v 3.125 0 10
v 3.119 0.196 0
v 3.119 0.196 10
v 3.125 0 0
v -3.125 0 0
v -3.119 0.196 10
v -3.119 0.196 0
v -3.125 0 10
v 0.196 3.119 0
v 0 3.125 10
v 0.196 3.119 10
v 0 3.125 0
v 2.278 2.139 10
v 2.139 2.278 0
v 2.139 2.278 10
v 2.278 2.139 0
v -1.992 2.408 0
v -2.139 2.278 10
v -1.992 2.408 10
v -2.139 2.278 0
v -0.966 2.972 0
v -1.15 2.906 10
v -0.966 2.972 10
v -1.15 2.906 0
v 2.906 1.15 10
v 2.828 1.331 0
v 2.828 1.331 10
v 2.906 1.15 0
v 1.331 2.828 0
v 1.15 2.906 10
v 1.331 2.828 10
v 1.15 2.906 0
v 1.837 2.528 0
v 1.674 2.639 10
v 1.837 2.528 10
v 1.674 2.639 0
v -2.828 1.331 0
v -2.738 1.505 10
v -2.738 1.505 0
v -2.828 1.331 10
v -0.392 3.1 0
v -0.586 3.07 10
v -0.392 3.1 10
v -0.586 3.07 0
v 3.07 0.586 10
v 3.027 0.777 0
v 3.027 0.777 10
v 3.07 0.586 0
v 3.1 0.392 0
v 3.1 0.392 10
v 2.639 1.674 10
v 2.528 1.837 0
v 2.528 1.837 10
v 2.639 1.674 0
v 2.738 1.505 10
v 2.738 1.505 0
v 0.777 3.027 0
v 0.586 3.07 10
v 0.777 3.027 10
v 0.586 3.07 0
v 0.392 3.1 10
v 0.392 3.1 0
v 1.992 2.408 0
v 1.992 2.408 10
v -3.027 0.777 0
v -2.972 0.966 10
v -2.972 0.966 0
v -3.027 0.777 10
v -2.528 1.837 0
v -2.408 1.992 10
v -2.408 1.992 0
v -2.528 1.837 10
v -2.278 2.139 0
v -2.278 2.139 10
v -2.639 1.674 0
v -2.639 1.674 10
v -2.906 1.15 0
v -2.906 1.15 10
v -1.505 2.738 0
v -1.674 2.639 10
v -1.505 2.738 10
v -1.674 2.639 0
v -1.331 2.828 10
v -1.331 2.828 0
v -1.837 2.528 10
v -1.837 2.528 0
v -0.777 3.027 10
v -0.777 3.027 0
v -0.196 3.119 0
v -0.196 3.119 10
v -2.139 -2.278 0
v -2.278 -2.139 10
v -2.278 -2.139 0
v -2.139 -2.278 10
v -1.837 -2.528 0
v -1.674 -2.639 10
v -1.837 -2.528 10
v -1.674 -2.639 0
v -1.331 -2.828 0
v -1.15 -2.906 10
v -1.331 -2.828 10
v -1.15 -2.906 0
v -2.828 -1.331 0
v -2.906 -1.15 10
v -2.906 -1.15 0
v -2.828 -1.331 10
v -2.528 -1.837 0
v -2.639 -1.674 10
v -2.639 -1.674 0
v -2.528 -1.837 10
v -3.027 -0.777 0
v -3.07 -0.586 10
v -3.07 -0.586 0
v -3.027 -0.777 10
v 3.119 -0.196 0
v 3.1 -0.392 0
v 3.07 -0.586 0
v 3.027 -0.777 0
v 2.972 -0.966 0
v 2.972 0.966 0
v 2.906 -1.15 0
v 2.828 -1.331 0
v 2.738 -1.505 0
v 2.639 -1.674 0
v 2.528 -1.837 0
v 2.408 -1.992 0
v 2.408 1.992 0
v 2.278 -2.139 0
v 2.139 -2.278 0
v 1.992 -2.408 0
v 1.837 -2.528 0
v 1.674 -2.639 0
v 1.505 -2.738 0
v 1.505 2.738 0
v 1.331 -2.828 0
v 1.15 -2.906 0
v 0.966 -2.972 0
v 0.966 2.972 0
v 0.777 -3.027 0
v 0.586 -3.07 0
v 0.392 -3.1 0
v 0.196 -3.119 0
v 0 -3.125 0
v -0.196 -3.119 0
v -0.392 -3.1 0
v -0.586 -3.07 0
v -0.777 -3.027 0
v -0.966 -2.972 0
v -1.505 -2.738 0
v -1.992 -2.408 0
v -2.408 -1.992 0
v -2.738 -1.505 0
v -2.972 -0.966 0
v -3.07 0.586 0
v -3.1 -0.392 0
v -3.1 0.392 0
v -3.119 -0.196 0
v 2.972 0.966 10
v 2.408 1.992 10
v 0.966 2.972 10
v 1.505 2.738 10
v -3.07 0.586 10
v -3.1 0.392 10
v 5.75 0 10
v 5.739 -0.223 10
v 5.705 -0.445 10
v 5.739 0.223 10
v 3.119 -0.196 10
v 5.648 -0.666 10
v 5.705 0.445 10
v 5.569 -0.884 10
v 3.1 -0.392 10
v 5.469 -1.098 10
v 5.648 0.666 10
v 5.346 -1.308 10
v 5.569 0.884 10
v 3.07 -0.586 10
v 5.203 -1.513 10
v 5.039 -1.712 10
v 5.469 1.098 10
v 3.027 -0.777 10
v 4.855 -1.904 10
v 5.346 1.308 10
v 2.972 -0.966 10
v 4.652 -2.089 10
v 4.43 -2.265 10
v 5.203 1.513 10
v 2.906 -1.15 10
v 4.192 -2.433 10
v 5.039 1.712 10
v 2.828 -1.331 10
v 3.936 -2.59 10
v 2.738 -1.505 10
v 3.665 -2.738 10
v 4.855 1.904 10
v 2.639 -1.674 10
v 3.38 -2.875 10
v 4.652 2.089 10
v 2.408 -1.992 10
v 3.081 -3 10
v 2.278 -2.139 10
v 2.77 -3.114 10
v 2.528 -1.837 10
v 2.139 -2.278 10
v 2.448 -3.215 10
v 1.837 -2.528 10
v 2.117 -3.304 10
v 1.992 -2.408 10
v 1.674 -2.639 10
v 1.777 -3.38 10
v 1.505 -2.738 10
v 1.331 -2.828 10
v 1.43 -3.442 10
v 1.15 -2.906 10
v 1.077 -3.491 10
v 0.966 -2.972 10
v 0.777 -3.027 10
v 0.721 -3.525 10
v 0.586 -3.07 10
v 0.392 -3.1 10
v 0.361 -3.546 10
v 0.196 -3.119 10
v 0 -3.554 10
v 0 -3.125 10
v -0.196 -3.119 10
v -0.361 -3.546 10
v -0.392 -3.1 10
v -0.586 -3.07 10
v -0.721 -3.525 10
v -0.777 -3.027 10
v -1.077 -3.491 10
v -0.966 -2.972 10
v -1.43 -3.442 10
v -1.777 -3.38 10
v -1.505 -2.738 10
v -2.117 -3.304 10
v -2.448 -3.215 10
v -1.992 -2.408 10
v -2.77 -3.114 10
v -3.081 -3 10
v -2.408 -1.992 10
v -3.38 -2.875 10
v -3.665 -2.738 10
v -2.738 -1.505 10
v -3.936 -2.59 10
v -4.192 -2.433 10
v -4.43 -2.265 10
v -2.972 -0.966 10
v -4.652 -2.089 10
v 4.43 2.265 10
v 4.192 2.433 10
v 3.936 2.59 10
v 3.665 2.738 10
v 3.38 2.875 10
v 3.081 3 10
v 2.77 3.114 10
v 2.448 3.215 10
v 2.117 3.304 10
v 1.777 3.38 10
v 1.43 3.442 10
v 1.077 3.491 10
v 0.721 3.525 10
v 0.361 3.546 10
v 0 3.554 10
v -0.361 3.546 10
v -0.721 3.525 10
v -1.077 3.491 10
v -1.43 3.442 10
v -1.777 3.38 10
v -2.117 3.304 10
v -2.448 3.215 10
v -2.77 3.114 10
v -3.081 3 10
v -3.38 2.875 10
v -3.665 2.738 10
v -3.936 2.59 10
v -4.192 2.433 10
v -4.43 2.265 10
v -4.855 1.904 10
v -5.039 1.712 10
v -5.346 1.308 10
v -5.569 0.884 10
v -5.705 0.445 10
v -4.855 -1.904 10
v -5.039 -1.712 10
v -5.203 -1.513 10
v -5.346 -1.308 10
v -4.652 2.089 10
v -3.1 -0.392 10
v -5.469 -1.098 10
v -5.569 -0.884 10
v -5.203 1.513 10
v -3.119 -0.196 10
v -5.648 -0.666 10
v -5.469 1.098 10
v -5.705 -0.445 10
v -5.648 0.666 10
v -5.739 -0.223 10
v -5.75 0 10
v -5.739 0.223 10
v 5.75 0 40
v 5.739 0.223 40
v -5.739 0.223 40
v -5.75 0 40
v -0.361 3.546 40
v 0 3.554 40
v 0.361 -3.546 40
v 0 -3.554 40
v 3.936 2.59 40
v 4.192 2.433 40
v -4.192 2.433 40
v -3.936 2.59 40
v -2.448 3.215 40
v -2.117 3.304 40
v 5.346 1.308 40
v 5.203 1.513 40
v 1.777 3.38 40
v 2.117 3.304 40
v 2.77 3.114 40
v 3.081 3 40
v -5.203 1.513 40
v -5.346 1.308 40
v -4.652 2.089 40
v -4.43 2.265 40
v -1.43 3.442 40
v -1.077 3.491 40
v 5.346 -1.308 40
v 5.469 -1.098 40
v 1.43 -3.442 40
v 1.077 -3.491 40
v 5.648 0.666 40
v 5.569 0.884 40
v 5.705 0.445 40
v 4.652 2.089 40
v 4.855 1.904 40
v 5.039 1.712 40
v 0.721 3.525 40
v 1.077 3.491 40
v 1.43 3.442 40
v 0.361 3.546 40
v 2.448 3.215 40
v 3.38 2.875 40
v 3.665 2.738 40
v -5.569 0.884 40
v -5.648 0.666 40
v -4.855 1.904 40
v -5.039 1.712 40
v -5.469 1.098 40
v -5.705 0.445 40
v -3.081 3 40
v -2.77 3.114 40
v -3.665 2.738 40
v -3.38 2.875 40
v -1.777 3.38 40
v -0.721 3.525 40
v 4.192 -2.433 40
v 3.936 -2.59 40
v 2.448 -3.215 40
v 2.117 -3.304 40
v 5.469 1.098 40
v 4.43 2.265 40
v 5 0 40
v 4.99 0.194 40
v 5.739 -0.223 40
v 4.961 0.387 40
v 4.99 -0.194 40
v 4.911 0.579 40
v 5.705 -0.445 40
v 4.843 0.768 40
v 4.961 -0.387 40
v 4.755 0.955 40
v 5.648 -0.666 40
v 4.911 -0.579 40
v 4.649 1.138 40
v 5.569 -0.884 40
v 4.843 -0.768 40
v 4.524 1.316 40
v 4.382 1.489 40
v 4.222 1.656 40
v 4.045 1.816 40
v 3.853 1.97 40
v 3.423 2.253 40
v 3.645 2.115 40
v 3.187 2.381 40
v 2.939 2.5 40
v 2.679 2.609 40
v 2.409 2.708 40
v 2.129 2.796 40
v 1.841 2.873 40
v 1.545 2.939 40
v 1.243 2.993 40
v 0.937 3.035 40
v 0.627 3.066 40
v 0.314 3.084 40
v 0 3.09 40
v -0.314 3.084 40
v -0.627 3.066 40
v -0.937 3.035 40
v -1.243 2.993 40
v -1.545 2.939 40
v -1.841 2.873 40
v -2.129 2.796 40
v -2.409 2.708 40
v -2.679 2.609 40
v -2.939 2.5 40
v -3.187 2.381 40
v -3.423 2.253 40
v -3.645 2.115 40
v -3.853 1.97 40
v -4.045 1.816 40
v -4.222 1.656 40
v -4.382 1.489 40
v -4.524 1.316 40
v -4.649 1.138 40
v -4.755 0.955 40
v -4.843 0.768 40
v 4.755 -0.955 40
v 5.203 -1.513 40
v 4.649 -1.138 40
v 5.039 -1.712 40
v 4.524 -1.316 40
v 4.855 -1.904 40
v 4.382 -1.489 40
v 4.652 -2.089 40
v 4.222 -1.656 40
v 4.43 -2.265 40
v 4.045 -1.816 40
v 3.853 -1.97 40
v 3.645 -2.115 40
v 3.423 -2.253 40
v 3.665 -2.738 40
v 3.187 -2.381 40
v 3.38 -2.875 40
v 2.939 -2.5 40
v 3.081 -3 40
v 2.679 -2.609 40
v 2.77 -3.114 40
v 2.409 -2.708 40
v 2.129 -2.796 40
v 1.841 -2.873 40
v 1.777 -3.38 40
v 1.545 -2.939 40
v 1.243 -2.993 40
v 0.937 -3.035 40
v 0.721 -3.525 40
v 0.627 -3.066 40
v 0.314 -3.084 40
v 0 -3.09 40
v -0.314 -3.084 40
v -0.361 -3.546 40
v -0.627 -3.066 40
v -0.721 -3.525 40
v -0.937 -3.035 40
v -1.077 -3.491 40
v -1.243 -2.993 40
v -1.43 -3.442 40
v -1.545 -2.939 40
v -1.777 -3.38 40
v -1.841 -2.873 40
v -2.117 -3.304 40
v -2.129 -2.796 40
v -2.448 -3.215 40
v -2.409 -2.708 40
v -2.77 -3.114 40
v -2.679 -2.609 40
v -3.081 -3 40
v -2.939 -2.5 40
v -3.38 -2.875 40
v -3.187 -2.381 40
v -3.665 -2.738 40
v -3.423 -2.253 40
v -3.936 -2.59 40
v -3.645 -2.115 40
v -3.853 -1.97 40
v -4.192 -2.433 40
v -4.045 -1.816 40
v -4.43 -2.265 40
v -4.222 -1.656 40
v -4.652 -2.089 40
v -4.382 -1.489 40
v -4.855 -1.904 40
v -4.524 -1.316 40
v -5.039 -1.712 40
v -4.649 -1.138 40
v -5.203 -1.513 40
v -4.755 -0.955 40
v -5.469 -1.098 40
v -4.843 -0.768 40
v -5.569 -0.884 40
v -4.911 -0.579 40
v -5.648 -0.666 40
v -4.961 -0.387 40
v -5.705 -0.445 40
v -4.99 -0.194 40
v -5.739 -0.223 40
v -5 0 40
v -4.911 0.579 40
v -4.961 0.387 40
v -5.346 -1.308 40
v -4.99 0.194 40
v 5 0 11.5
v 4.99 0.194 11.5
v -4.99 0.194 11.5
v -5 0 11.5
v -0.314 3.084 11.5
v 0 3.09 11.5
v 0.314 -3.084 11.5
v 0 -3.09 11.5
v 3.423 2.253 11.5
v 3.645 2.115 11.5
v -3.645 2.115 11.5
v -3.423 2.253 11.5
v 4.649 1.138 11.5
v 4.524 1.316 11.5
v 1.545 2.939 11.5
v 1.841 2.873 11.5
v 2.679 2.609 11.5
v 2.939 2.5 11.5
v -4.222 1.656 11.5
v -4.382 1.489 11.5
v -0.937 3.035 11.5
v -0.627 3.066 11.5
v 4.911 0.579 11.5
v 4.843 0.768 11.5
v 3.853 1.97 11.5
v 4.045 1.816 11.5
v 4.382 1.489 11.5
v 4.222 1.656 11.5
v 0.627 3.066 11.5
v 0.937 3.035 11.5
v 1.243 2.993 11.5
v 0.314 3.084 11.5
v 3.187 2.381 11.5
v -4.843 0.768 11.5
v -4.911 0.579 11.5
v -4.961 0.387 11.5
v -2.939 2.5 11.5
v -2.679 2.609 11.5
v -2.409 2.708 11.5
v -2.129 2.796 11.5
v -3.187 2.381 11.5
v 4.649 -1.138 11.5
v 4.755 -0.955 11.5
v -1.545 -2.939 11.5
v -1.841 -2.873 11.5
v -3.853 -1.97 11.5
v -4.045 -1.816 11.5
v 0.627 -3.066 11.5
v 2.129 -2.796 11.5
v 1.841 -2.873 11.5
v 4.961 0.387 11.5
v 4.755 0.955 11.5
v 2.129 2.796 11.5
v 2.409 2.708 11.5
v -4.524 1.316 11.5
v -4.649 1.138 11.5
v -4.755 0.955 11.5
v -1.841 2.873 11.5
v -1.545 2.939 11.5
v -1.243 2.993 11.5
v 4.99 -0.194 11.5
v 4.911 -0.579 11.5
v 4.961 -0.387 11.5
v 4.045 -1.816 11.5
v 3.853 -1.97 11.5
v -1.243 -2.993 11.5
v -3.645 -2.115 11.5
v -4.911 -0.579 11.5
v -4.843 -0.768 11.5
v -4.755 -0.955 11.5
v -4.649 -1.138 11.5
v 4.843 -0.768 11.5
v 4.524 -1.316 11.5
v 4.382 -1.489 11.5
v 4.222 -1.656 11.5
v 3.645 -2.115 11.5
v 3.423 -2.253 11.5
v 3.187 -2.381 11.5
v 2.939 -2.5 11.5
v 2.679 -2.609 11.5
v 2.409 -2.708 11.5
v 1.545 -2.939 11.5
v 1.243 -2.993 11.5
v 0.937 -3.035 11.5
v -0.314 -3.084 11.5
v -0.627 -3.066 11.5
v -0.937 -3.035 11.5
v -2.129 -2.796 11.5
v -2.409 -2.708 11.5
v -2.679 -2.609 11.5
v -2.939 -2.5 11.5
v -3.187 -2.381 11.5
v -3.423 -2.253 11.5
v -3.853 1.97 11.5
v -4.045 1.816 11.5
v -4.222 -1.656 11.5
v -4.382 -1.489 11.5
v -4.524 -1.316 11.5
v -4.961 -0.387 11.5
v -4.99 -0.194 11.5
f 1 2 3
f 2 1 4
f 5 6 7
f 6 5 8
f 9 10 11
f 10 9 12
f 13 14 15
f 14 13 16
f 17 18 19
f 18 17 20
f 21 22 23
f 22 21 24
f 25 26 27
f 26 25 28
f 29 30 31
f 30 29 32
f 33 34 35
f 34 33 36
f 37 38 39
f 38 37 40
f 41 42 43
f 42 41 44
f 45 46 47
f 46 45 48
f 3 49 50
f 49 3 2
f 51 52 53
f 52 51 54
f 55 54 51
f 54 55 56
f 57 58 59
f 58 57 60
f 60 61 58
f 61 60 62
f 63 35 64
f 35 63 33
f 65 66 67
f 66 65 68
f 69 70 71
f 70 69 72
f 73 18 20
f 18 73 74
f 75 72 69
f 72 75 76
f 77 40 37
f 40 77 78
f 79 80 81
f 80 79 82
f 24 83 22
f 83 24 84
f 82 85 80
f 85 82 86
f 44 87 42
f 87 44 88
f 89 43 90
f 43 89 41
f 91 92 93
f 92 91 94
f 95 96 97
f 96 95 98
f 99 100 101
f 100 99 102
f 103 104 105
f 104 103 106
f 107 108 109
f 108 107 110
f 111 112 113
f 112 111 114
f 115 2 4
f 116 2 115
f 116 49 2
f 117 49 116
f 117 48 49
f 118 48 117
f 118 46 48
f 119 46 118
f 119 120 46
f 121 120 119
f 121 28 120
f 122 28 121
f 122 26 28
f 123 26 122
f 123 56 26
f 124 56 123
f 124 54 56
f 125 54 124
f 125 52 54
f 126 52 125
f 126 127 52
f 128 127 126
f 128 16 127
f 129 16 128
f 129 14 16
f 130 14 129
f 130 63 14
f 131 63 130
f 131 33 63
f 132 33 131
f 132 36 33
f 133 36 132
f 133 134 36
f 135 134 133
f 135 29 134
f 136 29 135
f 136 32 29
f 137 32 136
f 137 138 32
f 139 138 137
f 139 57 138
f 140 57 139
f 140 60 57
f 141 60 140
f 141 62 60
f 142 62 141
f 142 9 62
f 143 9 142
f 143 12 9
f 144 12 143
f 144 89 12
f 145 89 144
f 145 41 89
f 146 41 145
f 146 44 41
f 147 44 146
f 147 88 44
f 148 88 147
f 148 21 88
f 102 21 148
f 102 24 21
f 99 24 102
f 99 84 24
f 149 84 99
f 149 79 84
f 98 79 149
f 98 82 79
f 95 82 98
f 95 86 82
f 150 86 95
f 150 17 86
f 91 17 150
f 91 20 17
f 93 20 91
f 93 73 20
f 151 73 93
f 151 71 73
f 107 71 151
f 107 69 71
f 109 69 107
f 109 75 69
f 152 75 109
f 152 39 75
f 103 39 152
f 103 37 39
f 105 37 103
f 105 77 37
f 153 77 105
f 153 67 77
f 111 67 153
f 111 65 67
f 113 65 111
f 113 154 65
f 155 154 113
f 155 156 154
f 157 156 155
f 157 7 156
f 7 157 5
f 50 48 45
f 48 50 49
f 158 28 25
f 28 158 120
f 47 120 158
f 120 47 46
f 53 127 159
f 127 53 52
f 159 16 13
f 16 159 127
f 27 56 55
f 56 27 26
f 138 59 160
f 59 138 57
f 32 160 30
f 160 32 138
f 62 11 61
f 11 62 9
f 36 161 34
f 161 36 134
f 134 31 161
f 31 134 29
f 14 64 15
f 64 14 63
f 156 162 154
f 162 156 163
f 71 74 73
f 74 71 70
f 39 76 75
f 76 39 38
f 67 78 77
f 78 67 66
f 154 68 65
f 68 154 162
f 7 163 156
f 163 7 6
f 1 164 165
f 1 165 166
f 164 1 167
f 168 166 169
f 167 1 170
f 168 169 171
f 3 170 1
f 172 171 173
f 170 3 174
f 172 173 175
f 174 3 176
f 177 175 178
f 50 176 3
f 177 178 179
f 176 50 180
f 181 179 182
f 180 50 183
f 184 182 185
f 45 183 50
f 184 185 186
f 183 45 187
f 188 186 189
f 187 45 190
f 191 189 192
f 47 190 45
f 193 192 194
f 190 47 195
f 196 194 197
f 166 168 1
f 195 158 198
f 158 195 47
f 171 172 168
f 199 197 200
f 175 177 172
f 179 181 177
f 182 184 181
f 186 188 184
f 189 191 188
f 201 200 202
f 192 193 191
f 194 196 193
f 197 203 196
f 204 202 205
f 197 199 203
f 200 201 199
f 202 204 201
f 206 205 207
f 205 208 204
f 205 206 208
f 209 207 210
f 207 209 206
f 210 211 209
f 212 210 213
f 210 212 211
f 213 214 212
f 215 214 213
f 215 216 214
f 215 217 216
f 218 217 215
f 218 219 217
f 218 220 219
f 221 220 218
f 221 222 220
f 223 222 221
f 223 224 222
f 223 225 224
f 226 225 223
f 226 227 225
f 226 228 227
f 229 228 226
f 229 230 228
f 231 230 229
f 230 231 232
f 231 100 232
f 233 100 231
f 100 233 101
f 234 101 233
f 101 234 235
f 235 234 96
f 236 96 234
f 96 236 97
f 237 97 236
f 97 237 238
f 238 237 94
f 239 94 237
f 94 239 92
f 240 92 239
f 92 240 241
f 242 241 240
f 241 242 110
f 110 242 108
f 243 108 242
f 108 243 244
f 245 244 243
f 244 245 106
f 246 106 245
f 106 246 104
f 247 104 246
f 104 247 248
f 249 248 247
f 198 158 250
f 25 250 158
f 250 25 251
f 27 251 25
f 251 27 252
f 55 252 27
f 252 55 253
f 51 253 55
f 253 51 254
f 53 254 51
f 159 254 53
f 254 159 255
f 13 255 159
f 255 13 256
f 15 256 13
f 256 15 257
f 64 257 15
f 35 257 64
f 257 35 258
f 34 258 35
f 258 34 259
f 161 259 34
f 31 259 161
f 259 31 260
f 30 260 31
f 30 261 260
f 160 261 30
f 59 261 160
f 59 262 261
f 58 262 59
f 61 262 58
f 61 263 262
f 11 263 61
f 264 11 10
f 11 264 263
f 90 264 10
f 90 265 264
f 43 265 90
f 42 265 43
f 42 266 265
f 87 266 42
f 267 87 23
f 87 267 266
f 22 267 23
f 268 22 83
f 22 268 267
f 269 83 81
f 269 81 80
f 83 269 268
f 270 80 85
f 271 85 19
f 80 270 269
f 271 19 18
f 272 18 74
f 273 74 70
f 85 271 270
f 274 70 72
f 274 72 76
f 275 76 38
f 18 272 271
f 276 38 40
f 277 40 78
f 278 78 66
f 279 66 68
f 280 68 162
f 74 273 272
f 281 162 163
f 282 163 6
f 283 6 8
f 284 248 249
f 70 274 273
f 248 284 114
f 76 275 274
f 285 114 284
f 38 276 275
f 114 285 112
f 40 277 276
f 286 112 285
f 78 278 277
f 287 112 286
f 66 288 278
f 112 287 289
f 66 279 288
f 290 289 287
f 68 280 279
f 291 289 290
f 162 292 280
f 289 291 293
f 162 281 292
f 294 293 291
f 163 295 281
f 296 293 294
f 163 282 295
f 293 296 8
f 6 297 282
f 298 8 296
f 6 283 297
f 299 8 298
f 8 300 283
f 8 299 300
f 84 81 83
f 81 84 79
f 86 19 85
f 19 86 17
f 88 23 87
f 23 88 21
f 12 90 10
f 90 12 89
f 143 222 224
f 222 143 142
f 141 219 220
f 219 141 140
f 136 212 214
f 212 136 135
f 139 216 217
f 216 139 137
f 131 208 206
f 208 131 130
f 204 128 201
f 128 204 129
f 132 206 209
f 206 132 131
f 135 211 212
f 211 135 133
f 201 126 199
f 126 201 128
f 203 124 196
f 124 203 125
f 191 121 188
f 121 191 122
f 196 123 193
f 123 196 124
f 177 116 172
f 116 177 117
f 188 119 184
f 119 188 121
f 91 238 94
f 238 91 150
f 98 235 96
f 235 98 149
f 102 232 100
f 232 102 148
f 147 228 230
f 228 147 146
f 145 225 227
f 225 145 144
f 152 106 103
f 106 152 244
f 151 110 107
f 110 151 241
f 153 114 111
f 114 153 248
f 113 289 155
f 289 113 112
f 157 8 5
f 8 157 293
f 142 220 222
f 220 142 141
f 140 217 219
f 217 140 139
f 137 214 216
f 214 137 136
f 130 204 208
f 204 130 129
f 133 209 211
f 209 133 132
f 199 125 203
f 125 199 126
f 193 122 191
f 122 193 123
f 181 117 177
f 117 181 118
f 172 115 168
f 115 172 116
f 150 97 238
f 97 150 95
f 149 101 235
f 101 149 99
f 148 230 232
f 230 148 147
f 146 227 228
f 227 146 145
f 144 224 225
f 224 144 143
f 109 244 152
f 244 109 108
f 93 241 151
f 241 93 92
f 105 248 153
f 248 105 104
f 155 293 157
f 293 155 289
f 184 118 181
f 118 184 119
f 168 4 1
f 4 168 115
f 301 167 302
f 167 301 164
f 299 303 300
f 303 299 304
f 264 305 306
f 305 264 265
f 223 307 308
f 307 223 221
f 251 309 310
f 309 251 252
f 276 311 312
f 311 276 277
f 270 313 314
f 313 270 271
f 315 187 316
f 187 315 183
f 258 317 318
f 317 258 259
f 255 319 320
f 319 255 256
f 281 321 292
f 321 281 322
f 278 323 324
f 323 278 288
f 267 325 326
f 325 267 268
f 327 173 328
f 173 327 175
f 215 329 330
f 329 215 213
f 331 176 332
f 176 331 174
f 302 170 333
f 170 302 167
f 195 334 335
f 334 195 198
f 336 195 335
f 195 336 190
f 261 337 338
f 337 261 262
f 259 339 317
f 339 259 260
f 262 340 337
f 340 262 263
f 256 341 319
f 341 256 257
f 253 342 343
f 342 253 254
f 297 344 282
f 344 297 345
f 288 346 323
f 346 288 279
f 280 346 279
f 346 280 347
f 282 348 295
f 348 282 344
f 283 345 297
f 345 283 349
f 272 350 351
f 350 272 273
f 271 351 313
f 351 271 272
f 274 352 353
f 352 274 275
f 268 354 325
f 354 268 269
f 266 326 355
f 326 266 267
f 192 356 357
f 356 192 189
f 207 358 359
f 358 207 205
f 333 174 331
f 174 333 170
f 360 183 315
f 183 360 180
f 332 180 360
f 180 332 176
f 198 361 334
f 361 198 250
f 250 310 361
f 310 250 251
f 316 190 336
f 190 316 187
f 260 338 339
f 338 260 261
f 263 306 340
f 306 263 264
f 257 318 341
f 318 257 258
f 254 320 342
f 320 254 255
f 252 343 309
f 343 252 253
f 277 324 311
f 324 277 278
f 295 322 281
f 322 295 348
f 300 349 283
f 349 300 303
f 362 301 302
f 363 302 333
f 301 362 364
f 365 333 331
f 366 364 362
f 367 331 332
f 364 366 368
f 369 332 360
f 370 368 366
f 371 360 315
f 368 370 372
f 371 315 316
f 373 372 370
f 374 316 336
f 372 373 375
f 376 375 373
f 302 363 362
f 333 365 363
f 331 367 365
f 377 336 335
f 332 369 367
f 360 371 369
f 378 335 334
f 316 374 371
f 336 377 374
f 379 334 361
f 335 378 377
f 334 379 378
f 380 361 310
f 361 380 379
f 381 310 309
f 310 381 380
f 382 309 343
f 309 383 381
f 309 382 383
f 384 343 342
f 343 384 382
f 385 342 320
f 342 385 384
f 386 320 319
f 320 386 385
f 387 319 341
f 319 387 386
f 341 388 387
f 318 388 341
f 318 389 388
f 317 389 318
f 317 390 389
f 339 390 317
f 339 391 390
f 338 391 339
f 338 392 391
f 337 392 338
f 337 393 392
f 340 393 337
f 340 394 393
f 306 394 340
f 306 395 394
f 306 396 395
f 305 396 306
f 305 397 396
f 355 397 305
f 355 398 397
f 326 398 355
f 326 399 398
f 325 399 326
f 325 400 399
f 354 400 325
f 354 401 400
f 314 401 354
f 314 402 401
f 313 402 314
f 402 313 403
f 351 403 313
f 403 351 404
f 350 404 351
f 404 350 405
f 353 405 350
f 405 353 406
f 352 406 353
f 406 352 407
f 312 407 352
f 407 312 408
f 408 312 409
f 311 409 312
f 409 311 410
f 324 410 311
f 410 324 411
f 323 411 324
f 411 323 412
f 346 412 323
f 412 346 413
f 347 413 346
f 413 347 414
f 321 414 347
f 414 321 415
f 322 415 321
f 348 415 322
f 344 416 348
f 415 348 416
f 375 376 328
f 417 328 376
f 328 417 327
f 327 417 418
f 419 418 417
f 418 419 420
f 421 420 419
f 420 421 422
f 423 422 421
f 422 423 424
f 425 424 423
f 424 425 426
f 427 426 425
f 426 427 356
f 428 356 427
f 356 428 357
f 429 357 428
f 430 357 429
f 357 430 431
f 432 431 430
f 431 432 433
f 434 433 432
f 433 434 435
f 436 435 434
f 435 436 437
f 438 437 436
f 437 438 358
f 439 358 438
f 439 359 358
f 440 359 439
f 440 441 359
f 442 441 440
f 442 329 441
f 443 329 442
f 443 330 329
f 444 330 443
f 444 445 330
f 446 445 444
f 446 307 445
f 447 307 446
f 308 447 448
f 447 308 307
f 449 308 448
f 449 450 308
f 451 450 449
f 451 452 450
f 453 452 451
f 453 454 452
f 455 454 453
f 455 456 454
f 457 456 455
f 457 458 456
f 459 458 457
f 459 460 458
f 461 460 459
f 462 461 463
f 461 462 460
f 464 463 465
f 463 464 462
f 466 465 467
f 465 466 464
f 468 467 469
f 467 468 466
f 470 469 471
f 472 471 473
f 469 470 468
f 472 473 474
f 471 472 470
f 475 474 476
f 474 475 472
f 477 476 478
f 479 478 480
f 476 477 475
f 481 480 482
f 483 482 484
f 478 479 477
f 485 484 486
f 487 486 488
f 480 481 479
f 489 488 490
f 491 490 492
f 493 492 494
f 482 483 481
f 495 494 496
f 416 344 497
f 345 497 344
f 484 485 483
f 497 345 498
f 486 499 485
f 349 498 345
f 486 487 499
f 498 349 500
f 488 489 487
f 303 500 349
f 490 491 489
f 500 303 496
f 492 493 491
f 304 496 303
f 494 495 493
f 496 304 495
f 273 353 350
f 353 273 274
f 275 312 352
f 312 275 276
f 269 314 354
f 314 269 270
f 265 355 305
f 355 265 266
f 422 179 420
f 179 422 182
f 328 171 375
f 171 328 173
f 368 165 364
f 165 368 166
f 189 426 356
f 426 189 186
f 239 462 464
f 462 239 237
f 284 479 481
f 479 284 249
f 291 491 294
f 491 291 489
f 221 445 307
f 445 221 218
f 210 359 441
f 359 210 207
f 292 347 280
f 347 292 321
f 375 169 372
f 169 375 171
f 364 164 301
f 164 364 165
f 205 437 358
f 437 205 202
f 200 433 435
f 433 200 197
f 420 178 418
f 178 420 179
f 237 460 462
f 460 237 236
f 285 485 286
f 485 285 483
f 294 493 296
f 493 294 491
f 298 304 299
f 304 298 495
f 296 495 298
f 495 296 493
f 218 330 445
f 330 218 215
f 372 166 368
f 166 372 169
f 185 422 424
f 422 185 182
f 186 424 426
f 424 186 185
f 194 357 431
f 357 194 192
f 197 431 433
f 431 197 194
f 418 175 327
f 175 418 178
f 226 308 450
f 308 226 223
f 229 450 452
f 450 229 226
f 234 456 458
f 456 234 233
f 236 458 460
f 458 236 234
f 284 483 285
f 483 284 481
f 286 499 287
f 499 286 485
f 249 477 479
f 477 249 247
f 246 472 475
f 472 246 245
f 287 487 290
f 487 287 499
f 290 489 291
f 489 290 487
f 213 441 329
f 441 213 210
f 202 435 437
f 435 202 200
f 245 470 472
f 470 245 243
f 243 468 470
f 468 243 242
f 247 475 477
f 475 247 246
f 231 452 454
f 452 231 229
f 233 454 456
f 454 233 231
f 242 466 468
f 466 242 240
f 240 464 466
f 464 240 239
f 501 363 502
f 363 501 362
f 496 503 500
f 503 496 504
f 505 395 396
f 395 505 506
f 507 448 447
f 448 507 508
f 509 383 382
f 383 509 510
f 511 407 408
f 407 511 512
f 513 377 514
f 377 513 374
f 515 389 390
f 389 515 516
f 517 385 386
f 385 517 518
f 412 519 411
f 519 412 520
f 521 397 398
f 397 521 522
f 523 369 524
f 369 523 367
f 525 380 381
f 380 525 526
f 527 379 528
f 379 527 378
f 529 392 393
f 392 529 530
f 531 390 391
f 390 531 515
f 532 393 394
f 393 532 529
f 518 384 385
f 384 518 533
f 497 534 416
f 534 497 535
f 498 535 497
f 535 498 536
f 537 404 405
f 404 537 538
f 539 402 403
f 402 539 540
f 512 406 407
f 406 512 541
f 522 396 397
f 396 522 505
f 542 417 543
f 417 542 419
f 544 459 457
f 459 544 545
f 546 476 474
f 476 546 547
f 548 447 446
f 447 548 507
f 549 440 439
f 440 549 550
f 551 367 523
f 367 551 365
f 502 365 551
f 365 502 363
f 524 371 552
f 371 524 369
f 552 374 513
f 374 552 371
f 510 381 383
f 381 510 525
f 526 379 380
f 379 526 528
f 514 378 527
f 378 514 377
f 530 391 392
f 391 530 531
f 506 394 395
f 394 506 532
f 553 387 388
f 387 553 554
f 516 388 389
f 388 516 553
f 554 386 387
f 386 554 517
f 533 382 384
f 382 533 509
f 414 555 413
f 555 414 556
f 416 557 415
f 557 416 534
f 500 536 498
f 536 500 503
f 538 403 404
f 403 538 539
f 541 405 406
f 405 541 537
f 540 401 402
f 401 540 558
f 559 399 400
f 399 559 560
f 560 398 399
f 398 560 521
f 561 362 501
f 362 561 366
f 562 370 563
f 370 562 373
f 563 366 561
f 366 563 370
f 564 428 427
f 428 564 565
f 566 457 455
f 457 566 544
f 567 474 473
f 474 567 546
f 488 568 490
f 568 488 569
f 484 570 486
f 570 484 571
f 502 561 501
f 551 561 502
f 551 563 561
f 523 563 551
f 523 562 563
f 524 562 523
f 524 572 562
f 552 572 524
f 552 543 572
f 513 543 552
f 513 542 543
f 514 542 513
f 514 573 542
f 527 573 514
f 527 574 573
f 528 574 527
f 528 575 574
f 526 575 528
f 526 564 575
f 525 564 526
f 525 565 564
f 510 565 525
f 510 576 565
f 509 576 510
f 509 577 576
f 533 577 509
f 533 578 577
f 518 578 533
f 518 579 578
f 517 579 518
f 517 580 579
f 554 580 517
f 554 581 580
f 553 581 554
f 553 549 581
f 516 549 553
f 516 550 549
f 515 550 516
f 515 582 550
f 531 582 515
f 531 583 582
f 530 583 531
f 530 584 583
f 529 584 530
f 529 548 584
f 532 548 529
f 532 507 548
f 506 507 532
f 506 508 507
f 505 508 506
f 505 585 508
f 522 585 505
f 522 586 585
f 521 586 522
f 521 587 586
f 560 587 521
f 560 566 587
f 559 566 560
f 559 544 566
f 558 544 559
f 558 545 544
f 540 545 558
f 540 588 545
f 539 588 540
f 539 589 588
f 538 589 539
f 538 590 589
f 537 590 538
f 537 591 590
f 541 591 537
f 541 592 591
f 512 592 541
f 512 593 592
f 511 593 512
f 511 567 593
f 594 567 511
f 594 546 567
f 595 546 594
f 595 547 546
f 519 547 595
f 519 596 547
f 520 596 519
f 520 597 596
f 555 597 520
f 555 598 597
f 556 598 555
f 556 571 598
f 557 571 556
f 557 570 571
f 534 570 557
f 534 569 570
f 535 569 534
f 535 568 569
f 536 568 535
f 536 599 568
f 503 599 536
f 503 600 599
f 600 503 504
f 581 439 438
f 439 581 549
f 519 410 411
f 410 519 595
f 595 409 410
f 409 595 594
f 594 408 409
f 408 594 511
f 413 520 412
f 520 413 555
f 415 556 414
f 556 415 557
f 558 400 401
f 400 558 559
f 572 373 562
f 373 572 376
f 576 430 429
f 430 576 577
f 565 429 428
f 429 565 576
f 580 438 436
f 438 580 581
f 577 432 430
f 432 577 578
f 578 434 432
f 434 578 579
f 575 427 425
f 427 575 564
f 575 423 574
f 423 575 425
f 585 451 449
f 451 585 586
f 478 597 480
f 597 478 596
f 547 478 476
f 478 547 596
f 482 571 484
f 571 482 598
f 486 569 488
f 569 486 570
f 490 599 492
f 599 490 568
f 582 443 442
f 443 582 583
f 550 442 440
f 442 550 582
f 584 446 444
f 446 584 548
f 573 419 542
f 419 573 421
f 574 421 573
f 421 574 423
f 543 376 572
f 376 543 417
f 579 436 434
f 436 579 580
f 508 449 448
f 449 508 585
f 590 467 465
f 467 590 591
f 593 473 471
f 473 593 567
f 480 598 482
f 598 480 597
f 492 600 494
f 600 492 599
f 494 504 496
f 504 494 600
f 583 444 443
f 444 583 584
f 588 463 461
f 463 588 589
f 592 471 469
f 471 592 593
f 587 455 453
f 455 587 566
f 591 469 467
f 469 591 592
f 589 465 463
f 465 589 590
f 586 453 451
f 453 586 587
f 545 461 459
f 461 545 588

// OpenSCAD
$fn=100;

module sampleholder(cylinder_height,
                    cylinder_diameter,
                    wall_thickness=1.5,
                    pin_height=20,
                    ) {
    difference() { // Cut out cylinder with given diameter from cylinder with given diameter plus wall thickness
        union() { // Collect the bottom pin and the cylinder
            cylinder(d=6.25, h=pin_height); // Bottom pin
            scale([1, 0.618, 1]) { // squash the tube
                translate([0,0,pin_height]) { // Move the actual holder cylinder up
                    cylinder(d=cylinder_diameter+wall_thickness,h=cylinder_height);
                    }
                }
                }
                translate([0,0,pin_height+wall_thickness]) {  // Move the drilling sphere and cylinder up
                    scale([1, 0.618, 1]) { // squash the tube
                    #cylinder(d=cylinder_diameter, h=cylinder_height+1);
                        }
                    }
                }
            }

sampleholder(30, 10, pin_height=10);
